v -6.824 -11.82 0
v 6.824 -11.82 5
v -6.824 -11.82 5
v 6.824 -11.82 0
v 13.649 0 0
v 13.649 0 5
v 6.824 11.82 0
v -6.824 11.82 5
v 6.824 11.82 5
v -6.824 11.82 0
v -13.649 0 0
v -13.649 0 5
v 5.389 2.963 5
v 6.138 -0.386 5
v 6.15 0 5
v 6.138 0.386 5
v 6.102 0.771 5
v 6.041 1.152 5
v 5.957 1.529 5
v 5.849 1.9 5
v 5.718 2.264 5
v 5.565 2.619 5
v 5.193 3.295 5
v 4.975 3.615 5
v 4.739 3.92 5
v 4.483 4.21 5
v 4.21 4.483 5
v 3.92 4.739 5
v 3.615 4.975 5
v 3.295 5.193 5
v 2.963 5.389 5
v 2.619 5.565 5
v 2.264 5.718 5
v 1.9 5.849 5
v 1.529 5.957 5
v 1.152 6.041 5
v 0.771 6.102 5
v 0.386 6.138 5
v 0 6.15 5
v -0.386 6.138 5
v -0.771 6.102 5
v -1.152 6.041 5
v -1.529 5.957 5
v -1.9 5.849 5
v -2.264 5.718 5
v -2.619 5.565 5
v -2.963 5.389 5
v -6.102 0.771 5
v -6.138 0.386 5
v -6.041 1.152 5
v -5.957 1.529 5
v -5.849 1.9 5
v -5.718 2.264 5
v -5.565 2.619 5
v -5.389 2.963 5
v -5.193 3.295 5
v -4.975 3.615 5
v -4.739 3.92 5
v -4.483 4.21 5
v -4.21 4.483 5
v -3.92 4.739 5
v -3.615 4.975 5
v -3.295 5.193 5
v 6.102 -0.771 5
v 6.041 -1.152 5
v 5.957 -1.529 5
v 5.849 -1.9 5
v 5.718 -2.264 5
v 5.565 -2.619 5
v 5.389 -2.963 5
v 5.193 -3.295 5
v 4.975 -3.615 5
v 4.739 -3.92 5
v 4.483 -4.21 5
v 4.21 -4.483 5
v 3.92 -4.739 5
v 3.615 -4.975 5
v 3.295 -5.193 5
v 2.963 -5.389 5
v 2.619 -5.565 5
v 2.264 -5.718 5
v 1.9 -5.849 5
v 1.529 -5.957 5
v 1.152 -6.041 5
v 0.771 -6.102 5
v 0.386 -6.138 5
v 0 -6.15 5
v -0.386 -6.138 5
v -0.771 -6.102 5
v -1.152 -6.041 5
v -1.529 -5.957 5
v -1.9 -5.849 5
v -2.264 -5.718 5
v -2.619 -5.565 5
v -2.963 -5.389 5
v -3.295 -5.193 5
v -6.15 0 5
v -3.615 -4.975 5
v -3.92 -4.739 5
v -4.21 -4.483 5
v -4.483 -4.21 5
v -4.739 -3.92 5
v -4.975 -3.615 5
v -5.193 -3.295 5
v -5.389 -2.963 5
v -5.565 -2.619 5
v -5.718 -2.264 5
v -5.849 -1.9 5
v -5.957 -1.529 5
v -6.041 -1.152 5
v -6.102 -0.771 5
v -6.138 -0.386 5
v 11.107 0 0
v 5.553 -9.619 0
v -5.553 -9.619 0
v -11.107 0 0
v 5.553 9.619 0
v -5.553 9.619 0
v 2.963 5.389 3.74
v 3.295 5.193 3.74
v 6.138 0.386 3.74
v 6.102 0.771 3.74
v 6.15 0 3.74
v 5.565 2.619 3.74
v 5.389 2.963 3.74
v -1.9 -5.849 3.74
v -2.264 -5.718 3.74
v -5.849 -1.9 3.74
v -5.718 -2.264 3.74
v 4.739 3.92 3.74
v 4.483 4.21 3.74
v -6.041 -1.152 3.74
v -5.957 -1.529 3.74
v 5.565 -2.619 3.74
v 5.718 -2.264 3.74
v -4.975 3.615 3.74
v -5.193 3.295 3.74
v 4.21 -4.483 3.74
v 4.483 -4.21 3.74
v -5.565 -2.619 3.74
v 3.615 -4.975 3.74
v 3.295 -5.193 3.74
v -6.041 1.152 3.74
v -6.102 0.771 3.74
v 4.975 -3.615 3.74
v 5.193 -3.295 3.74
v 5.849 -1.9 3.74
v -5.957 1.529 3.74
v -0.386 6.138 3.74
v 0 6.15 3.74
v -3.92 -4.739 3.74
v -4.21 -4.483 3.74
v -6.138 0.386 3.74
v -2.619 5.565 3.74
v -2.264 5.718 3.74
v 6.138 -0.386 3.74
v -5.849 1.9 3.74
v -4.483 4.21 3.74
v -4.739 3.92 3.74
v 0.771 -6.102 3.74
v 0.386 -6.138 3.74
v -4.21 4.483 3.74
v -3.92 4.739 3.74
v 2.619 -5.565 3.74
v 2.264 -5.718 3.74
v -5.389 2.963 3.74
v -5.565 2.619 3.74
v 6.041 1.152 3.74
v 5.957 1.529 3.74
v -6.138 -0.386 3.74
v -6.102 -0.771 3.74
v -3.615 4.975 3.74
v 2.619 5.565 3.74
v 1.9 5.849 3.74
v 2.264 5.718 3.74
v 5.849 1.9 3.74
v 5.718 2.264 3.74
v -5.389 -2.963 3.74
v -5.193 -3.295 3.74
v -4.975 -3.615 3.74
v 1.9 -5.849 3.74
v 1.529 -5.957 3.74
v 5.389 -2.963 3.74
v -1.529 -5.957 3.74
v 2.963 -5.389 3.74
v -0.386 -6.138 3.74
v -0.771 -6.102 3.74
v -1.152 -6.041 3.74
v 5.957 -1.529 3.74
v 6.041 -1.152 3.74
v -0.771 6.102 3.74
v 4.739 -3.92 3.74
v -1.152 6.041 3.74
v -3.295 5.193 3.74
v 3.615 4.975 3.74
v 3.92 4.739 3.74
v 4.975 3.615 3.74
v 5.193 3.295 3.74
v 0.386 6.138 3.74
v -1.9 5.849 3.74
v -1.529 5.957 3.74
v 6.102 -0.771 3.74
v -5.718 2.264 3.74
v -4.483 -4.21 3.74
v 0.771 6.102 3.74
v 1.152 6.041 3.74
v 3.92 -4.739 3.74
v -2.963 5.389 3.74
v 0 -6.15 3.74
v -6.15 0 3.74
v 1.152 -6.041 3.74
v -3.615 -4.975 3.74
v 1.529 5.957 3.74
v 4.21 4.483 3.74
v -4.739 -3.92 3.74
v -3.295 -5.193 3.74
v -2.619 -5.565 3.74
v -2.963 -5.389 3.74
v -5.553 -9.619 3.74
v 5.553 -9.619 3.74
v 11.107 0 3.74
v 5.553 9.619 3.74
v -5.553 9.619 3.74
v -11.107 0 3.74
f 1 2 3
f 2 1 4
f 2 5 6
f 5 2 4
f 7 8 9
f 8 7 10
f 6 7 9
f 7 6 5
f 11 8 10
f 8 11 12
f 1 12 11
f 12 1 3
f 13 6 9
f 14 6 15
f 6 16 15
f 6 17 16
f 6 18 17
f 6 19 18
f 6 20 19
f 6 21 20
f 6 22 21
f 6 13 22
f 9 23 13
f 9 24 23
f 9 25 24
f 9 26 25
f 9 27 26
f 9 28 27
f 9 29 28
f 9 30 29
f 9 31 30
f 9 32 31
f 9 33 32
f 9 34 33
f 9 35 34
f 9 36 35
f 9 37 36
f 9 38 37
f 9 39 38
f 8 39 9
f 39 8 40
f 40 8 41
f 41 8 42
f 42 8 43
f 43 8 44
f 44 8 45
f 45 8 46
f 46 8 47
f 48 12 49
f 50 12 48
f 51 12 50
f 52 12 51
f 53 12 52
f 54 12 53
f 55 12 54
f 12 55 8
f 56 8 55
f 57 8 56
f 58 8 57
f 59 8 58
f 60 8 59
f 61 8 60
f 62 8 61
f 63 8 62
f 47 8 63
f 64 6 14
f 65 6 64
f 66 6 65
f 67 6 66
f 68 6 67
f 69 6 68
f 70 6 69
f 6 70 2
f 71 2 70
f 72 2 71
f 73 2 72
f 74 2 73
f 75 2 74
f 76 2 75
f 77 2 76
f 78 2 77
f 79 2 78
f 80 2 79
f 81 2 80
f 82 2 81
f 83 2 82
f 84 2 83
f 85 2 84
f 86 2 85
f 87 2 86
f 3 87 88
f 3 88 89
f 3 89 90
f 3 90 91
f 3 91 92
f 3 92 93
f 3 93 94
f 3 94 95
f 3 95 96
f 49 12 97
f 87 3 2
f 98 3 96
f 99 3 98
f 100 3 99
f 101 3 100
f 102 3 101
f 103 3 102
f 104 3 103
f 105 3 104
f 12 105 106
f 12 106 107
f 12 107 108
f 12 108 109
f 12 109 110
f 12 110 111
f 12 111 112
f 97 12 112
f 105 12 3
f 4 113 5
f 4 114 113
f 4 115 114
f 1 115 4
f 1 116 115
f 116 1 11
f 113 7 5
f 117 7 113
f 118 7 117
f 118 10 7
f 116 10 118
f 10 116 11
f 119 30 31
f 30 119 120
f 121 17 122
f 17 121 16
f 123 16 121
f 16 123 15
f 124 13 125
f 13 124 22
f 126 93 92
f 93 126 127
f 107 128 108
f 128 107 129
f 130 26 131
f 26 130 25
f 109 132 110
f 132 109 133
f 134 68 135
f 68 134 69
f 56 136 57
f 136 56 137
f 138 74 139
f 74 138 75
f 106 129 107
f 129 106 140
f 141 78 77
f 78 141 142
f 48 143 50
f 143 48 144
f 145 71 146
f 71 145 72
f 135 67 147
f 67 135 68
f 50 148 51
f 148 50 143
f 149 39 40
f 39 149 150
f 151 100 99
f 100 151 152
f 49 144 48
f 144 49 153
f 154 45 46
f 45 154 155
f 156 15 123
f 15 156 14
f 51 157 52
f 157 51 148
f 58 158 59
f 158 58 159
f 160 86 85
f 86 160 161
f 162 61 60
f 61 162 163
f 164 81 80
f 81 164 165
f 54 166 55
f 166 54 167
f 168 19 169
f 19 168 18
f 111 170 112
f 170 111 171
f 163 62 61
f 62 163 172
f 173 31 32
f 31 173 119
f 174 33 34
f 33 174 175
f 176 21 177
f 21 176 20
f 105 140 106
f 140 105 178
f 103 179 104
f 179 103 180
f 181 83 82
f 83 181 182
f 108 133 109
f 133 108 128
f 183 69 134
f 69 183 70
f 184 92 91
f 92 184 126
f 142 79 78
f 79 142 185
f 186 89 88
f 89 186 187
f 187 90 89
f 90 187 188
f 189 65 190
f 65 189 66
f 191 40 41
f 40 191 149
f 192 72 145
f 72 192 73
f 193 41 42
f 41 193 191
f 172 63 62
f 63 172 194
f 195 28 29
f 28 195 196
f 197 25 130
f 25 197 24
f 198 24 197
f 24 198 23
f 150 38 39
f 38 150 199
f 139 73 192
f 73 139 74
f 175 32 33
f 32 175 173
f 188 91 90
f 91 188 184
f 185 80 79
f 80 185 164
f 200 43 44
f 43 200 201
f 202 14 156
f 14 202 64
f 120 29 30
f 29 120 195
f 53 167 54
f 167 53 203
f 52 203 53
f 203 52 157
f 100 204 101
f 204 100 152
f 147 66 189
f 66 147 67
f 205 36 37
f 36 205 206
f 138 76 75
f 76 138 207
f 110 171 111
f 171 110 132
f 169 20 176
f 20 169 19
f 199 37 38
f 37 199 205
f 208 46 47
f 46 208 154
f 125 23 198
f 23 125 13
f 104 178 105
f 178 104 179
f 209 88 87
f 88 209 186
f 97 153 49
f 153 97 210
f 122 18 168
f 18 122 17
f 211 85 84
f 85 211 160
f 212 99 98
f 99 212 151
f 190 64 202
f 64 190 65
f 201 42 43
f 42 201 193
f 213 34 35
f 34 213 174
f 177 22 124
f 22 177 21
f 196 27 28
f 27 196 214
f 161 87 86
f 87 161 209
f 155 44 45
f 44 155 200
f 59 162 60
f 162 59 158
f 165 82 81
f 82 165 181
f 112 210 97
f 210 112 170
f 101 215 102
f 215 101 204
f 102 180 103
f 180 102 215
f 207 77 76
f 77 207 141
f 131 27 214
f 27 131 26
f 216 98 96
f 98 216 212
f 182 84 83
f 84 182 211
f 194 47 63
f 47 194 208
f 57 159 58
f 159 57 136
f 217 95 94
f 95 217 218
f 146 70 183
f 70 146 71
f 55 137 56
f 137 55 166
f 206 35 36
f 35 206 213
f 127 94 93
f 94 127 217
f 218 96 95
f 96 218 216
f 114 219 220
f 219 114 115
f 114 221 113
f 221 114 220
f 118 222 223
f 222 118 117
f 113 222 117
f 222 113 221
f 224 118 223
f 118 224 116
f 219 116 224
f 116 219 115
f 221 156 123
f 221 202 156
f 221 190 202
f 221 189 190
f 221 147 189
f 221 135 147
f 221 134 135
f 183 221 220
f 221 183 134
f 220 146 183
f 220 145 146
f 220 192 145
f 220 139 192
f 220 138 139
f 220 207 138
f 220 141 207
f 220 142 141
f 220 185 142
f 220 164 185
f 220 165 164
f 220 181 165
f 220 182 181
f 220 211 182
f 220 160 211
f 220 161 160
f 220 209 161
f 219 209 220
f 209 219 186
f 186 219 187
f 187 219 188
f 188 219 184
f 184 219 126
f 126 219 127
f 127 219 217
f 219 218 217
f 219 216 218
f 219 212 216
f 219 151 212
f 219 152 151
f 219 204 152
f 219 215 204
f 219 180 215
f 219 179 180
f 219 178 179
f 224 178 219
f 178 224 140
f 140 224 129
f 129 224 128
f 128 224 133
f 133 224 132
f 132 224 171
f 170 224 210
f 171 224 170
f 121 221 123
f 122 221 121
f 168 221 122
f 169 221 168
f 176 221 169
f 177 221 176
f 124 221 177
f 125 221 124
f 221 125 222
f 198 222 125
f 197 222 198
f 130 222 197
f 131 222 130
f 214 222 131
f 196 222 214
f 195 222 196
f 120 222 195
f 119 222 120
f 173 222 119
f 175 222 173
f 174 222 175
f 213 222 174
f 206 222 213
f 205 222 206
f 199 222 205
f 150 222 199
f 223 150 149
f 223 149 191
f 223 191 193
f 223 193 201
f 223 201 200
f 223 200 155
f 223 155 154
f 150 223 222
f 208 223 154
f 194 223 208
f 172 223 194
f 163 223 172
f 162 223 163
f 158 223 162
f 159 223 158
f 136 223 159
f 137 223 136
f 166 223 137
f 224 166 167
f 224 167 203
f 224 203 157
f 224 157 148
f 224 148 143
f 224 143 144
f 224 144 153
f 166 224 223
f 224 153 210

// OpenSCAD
use <../lib/threads.scad>;

$fn = $preview ? 15 : 100;
EPSILON = 0.01;
TOLERANCE = 0.5;

// Convert from flat-to-flat to point-to-point diameter
HEX_FACTOR = 1.155;

BOLT_HEAD_HEIGHT = 7.5;
BOLT_HEAD_DIAMETER = 18.8;
BOLT_THREAD_DIAMETER = 11.8;
BOLT_HEIGHT = 42.6;

HEAD_EXT_WIDTH = 24.5;
HEAD_EXT_HEIGHT = 5;

module bolt() {
  color([ 242 / 255, 168 / 255, 48 / 255 ]) {
    translate([ 0, 0, -BOLT_HEAD_HEIGHT / 2 ]) {
      cylinder(h = BOLT_HEAD_HEIGHT, r = (BOLT_HEAD_DIAMETER * HEX_FACTOR) / 2,
               $fn = 6);
      // cube([ BOLT_HEAD_DIAMETER, BOLT_HEAD_DIAMETER, 1 ], center = true);
      cylinder(h = BOLT_HEIGHT, r = BOLT_THREAD_DIAMETER / 2);
    }
  }
}

module head_extension() {
  difference() {
    cylinder(r = (HEAD_EXT_WIDTH / 2 * HEX_FACTOR) - TOLERANCE,
             h = HEAD_EXT_HEIGHT, $fn = 6);

    // Can't use a thread here since the head needs to be pushed all the way
    // into the hole. Use superglue instead.
    // translate([ 0, 0, -EPSILON / 2 ]) metric_thread(
    //     diameter = 12, pitch = 1.75, length = HEAD_EXT_HEIGHT * 2);

    cylinder(h = HEAD_EXT_HEIGHT + EPSILON,
             r = BOLT_THREAD_DIAMETER / 2 + TOLERANCE / 2);

    translate([ 0, 0, -EPSILON ]) cylinder(
        h = HEAD_EXT_HEIGHT * 0.75,
        r = (BOLT_HEAD_DIAMETER / 2 * HEX_FACTOR) + TOLERANCE / 2, $fn = 6);
  }
}

module head_extension_nut() {
  difference() {
    cylinder(r = (BOLT_HEAD_DIAMETER / 2 * HEX_FACTOR) - TOLERANCE, h = 3.5,
             $fn = 6);

    translate([ 0, 0, -EPSILON / 2 ]) metric_thread(
        diameter = 12, pitch = 1.75, length = HEAD_EXT_HEIGHT * 2);
  }
}

head_extension();
// translate([ 0, 0, -10 ]) head_extension_nut();
// bolt();
